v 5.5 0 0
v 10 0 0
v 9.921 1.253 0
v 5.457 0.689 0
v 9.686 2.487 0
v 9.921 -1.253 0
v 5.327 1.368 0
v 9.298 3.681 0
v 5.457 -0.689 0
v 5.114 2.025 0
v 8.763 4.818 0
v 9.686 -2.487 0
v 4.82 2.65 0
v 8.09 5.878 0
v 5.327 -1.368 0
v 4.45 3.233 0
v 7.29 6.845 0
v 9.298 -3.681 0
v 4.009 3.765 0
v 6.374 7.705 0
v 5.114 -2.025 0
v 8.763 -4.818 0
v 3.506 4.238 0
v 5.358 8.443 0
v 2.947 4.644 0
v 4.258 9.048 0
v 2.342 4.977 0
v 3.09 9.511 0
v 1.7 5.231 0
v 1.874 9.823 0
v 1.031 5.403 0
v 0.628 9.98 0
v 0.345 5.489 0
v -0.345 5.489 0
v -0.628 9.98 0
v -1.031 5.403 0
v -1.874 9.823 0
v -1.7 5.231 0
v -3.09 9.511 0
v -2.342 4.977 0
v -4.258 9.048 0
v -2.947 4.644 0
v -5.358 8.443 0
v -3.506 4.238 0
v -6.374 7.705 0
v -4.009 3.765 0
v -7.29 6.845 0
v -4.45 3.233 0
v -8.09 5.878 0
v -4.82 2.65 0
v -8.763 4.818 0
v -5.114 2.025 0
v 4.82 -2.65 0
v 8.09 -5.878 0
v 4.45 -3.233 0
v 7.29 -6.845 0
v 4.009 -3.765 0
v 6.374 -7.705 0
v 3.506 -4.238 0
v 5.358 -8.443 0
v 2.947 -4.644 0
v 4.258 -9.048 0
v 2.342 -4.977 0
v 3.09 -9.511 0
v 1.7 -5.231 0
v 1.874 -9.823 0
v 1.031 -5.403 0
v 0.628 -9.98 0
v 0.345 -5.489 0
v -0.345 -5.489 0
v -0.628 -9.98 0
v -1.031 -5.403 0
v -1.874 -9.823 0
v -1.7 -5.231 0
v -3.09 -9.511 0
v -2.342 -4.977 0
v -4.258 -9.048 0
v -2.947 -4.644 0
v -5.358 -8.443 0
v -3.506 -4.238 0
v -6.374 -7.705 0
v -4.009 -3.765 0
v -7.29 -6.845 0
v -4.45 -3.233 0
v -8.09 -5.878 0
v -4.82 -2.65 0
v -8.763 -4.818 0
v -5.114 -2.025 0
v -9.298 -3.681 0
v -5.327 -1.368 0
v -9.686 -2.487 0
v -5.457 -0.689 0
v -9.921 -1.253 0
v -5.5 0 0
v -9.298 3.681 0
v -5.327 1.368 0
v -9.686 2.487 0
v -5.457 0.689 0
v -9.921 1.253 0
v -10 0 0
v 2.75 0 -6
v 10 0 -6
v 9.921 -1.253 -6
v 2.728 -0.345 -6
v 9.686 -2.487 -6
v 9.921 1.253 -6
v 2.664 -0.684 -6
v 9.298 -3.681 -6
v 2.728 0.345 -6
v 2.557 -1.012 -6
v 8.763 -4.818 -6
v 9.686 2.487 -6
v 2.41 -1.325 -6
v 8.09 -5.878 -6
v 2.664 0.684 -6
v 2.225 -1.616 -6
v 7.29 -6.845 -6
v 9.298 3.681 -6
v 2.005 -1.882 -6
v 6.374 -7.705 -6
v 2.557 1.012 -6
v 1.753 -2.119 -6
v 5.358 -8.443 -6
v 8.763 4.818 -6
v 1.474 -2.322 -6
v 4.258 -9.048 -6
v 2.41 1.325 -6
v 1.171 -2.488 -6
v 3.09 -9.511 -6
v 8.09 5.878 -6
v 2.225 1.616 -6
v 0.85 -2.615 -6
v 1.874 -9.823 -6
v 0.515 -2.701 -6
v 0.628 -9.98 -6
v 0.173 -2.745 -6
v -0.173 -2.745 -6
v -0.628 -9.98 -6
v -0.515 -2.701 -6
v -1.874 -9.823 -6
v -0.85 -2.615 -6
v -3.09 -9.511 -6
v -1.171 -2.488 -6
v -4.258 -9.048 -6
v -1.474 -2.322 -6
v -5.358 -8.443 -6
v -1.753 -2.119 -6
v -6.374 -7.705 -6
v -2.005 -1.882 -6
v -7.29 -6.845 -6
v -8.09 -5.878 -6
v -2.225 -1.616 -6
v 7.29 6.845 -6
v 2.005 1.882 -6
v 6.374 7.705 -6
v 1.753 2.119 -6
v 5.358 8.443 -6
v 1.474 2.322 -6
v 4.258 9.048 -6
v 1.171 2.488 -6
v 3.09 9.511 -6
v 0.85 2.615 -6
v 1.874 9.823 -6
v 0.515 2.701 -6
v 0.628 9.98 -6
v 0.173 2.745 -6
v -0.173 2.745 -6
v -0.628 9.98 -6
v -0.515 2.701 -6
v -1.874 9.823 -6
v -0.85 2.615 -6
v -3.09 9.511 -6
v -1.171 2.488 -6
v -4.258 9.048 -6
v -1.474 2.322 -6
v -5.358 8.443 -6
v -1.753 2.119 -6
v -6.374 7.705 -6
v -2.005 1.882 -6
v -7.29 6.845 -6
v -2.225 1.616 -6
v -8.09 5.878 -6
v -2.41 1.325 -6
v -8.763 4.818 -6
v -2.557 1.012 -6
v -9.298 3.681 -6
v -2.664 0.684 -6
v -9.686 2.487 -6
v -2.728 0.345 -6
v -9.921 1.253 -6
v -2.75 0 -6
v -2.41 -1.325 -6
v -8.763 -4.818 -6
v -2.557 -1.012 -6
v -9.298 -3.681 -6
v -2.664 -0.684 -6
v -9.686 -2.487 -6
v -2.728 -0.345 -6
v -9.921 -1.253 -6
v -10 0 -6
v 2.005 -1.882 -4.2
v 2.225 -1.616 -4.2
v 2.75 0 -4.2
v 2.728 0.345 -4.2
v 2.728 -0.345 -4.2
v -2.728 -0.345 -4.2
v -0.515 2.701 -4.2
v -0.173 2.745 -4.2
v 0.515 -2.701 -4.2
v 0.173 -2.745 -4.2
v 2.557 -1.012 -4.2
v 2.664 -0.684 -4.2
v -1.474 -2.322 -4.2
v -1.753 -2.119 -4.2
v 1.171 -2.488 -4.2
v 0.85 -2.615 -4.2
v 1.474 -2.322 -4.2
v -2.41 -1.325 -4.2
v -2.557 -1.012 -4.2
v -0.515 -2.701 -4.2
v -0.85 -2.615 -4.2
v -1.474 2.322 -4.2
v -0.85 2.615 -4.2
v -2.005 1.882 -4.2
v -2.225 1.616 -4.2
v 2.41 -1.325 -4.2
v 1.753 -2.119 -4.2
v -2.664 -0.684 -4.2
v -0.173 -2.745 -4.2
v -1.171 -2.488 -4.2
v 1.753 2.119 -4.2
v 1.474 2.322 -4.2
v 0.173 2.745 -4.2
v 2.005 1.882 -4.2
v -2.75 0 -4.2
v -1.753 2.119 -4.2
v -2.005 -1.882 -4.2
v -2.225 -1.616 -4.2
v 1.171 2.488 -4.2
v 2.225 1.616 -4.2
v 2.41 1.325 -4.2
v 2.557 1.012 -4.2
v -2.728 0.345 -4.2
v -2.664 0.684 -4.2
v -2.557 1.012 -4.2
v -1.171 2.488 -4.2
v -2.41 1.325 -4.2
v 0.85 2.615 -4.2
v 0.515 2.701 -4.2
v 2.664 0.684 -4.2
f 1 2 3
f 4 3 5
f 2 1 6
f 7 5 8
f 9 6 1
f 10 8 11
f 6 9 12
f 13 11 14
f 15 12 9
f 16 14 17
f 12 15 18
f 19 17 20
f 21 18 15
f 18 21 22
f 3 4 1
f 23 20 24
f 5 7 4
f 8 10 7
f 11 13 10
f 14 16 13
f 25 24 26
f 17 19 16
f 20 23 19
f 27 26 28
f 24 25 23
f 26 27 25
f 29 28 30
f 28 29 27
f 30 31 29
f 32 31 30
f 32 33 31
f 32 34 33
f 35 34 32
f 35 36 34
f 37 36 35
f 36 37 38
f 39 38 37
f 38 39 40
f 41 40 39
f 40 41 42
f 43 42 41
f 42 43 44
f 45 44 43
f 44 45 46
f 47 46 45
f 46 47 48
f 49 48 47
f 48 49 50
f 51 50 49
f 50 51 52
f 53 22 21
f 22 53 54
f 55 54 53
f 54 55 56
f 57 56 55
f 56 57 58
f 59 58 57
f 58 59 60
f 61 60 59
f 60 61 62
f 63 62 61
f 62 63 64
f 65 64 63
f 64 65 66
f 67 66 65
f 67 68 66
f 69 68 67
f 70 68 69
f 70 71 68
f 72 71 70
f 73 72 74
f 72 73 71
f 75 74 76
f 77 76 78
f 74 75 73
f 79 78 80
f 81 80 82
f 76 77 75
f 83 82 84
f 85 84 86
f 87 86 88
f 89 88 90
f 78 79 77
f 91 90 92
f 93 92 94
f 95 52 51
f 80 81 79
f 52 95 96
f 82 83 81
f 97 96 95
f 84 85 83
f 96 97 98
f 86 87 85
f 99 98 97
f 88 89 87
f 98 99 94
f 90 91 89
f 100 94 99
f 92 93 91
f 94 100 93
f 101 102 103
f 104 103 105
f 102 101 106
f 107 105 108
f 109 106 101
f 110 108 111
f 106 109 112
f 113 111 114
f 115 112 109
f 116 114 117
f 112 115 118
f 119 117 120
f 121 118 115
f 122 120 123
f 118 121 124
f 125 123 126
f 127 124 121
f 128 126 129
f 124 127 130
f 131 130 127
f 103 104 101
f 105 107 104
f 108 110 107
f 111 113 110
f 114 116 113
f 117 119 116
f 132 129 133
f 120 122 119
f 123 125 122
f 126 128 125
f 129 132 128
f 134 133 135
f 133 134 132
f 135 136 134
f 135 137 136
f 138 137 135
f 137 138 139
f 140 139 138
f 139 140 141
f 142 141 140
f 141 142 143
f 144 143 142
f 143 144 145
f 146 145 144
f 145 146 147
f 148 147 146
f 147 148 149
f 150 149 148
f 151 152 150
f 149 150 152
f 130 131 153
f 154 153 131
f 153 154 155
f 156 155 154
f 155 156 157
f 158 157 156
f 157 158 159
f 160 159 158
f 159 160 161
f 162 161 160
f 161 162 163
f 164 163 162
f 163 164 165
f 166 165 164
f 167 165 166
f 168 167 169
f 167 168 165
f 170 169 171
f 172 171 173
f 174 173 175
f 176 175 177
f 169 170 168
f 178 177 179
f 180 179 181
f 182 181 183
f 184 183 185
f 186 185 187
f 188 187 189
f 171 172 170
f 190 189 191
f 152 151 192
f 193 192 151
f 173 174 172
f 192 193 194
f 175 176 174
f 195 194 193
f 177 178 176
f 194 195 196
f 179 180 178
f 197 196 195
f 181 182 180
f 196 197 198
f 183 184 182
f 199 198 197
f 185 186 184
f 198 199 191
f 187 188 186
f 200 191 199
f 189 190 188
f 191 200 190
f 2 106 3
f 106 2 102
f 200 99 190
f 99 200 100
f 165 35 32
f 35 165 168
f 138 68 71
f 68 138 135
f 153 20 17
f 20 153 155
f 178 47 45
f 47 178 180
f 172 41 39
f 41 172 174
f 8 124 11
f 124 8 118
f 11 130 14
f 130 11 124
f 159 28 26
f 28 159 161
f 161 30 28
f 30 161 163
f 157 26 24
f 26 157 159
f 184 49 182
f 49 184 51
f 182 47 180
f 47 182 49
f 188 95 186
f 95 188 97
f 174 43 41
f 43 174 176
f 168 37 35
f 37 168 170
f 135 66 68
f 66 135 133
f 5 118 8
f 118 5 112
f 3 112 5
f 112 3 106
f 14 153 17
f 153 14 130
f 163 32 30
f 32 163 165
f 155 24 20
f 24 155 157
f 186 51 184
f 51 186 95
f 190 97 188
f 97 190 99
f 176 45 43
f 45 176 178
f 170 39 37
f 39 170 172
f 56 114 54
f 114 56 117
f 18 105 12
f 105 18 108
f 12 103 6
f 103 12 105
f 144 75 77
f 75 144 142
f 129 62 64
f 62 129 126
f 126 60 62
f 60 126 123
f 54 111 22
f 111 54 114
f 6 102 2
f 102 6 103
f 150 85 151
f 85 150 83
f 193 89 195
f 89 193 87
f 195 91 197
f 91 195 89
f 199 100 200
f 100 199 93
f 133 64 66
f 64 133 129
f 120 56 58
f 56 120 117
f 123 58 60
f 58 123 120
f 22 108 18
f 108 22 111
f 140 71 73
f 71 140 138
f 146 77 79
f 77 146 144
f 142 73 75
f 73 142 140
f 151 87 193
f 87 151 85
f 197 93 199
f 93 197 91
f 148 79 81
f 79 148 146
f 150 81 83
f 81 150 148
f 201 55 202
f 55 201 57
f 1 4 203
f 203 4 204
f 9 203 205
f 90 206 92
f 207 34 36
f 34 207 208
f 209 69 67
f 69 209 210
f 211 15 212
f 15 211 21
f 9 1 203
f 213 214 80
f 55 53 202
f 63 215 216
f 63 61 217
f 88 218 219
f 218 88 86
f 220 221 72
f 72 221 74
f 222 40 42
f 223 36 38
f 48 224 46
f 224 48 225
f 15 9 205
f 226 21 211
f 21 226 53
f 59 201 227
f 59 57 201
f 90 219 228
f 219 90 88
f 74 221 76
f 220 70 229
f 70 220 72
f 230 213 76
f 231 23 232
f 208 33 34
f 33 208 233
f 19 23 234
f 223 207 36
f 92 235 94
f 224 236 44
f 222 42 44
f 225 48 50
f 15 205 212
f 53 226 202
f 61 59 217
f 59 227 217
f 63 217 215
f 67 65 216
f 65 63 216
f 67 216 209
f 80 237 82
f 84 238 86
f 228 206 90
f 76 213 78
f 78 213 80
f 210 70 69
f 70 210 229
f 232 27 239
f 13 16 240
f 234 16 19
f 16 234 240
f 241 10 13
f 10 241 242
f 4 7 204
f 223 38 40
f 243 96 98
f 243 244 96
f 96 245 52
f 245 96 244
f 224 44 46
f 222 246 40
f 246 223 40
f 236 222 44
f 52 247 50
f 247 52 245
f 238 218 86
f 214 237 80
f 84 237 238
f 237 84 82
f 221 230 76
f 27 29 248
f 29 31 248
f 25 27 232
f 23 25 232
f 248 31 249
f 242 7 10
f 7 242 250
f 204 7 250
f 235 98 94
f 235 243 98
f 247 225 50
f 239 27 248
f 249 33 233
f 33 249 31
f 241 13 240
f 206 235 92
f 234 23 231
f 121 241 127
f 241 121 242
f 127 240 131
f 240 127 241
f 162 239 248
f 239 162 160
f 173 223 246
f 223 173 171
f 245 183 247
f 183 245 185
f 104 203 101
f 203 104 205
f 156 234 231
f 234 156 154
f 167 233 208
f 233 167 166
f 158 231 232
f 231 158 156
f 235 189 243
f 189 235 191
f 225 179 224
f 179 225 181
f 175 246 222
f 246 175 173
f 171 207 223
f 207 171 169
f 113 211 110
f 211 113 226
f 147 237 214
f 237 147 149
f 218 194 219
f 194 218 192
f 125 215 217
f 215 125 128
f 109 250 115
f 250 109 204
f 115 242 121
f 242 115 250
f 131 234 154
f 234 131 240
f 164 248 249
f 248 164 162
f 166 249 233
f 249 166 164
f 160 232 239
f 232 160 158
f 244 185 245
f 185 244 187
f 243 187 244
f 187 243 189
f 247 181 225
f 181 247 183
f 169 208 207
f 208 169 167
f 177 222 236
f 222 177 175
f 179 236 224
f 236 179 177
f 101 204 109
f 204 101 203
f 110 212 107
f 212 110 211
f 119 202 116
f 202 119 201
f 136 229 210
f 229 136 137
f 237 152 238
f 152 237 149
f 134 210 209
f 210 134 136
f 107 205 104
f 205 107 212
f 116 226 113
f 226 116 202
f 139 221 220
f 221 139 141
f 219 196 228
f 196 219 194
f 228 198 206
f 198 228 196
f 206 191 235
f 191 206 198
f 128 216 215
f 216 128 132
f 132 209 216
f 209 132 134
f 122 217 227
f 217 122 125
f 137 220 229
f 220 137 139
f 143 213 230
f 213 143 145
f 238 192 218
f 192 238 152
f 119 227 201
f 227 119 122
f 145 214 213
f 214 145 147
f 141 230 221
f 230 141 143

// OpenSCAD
$fn = 50;


difference() {
	union() {
		translate(v = [0, 0, -6.0000000000]) {
			cylinder(h = 6, r = 7.0000000000);
		}
		translate(v = [0, 0, -6.0000000000]) {
			cylinder(h = 6, r = 10.0000000000);
		}
	}
	union() {
		translate(v = [0, 0, 0]) {
			rotate(a = [0, 0, 0]) {
				difference() {
					union() {
						#translate(v = [0, 0, -6.0000000000]) {
							cylinder(h = 6, r = 2.2500000000);
						}
						#translate(v = [0, 0, -4.2000000000]) {
							cylinder(h = 4.2000000000, r1 = 2.7500000000, r2 = 5.5000000000);
						}
						#translate(v = [0, 0, -6.0000000000]) {
							cylinder(h = 6, r = 2.7500000000);
						}
						#translate(v = [0, 0, -6.0000000000]) {
							cylinder(h = 6, r = 2.2500000000);
						}
					}
					union();
				}
			}
		}
	}
}
